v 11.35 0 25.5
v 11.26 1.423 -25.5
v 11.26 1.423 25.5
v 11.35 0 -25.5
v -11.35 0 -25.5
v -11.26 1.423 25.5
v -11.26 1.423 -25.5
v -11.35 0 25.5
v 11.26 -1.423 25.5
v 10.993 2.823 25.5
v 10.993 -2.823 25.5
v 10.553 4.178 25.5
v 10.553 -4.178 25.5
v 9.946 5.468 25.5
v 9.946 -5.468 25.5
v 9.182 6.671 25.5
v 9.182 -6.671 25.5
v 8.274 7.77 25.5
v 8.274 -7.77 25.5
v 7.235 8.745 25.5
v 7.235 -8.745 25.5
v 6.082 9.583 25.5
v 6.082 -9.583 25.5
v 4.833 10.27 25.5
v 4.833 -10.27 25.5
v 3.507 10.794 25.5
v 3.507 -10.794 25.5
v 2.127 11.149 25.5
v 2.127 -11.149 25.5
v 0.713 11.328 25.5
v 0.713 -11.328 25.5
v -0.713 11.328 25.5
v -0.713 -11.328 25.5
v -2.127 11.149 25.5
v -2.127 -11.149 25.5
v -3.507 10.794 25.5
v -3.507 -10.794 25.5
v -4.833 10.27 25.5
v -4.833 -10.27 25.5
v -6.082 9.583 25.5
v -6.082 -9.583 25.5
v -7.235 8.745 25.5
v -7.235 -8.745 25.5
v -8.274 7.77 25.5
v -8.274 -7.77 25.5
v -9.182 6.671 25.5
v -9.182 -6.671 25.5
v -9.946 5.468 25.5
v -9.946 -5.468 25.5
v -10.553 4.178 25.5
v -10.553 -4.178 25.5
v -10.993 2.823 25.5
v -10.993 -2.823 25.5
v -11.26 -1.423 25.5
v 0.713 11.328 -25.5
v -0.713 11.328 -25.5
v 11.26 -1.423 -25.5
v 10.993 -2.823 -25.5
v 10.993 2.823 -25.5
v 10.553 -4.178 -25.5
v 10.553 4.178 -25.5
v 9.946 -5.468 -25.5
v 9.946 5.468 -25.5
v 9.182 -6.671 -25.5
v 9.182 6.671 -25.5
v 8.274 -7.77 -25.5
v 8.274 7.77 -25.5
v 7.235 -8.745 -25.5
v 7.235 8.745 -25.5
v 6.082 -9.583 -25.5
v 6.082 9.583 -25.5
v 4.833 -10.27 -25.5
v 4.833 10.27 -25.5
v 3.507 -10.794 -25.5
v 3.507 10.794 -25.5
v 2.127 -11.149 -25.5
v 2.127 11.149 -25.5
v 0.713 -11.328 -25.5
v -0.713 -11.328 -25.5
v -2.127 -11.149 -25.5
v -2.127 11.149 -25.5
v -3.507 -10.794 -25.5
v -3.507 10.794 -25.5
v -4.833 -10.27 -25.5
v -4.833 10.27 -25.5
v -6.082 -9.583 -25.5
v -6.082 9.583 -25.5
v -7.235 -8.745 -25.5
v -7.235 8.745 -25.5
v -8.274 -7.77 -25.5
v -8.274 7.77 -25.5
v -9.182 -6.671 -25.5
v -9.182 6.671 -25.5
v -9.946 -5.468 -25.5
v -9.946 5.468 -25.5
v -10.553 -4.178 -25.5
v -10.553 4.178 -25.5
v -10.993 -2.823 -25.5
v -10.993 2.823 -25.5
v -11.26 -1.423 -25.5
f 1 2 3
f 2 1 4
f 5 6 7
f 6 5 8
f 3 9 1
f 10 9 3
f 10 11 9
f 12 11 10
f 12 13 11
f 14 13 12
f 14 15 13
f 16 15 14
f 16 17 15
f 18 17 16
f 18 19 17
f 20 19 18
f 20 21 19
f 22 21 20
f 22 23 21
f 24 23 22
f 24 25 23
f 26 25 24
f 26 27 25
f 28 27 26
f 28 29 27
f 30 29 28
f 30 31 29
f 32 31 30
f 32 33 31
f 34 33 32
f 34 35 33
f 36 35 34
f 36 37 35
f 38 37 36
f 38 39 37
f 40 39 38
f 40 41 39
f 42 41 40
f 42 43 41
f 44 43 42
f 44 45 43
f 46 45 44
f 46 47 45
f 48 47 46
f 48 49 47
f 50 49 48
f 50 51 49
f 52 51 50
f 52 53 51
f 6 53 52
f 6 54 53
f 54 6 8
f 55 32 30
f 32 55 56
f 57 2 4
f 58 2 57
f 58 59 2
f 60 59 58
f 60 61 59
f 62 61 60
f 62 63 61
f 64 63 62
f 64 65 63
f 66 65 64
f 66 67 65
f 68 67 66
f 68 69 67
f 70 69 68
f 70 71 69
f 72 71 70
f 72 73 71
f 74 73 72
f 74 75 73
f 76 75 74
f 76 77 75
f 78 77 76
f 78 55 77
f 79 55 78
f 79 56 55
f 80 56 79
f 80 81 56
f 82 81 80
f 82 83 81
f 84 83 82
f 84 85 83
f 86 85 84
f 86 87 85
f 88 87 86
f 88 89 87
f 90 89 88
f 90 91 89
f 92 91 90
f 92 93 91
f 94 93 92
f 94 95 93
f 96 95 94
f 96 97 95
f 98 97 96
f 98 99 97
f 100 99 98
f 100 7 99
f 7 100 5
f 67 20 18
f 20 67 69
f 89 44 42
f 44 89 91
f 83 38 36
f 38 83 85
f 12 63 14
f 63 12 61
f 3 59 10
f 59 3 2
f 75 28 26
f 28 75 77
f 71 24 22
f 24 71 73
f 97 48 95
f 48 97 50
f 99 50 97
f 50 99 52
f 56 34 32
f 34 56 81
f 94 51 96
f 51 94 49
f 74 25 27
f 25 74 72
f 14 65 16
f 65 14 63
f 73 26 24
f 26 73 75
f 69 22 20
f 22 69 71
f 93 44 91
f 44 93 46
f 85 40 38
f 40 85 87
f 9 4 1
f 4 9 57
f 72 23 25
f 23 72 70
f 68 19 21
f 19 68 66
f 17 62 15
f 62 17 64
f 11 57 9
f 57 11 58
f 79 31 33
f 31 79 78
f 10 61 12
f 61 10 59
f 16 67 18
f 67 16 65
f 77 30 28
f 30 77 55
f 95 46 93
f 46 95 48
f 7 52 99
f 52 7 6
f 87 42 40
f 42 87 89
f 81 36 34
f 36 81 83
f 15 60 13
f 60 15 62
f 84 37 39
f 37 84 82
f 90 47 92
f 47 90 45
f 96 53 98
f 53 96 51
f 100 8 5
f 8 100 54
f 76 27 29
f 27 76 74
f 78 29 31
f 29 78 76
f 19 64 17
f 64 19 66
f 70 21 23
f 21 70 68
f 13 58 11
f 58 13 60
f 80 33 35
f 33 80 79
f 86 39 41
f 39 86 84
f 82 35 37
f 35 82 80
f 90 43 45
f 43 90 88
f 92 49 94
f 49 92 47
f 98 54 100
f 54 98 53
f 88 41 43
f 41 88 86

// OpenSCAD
$fn = 50;


difference() {
	union() {
		translate(v = [0, 0, -25.5000000000]) {
			cylinder(h = 51, r = 11.3500000000);
		}
	}
	union() {
		translate(v = [0, 0, -100.0000000000]) {
			cylinder(h = 200, r = 0);
		}
	}
}
